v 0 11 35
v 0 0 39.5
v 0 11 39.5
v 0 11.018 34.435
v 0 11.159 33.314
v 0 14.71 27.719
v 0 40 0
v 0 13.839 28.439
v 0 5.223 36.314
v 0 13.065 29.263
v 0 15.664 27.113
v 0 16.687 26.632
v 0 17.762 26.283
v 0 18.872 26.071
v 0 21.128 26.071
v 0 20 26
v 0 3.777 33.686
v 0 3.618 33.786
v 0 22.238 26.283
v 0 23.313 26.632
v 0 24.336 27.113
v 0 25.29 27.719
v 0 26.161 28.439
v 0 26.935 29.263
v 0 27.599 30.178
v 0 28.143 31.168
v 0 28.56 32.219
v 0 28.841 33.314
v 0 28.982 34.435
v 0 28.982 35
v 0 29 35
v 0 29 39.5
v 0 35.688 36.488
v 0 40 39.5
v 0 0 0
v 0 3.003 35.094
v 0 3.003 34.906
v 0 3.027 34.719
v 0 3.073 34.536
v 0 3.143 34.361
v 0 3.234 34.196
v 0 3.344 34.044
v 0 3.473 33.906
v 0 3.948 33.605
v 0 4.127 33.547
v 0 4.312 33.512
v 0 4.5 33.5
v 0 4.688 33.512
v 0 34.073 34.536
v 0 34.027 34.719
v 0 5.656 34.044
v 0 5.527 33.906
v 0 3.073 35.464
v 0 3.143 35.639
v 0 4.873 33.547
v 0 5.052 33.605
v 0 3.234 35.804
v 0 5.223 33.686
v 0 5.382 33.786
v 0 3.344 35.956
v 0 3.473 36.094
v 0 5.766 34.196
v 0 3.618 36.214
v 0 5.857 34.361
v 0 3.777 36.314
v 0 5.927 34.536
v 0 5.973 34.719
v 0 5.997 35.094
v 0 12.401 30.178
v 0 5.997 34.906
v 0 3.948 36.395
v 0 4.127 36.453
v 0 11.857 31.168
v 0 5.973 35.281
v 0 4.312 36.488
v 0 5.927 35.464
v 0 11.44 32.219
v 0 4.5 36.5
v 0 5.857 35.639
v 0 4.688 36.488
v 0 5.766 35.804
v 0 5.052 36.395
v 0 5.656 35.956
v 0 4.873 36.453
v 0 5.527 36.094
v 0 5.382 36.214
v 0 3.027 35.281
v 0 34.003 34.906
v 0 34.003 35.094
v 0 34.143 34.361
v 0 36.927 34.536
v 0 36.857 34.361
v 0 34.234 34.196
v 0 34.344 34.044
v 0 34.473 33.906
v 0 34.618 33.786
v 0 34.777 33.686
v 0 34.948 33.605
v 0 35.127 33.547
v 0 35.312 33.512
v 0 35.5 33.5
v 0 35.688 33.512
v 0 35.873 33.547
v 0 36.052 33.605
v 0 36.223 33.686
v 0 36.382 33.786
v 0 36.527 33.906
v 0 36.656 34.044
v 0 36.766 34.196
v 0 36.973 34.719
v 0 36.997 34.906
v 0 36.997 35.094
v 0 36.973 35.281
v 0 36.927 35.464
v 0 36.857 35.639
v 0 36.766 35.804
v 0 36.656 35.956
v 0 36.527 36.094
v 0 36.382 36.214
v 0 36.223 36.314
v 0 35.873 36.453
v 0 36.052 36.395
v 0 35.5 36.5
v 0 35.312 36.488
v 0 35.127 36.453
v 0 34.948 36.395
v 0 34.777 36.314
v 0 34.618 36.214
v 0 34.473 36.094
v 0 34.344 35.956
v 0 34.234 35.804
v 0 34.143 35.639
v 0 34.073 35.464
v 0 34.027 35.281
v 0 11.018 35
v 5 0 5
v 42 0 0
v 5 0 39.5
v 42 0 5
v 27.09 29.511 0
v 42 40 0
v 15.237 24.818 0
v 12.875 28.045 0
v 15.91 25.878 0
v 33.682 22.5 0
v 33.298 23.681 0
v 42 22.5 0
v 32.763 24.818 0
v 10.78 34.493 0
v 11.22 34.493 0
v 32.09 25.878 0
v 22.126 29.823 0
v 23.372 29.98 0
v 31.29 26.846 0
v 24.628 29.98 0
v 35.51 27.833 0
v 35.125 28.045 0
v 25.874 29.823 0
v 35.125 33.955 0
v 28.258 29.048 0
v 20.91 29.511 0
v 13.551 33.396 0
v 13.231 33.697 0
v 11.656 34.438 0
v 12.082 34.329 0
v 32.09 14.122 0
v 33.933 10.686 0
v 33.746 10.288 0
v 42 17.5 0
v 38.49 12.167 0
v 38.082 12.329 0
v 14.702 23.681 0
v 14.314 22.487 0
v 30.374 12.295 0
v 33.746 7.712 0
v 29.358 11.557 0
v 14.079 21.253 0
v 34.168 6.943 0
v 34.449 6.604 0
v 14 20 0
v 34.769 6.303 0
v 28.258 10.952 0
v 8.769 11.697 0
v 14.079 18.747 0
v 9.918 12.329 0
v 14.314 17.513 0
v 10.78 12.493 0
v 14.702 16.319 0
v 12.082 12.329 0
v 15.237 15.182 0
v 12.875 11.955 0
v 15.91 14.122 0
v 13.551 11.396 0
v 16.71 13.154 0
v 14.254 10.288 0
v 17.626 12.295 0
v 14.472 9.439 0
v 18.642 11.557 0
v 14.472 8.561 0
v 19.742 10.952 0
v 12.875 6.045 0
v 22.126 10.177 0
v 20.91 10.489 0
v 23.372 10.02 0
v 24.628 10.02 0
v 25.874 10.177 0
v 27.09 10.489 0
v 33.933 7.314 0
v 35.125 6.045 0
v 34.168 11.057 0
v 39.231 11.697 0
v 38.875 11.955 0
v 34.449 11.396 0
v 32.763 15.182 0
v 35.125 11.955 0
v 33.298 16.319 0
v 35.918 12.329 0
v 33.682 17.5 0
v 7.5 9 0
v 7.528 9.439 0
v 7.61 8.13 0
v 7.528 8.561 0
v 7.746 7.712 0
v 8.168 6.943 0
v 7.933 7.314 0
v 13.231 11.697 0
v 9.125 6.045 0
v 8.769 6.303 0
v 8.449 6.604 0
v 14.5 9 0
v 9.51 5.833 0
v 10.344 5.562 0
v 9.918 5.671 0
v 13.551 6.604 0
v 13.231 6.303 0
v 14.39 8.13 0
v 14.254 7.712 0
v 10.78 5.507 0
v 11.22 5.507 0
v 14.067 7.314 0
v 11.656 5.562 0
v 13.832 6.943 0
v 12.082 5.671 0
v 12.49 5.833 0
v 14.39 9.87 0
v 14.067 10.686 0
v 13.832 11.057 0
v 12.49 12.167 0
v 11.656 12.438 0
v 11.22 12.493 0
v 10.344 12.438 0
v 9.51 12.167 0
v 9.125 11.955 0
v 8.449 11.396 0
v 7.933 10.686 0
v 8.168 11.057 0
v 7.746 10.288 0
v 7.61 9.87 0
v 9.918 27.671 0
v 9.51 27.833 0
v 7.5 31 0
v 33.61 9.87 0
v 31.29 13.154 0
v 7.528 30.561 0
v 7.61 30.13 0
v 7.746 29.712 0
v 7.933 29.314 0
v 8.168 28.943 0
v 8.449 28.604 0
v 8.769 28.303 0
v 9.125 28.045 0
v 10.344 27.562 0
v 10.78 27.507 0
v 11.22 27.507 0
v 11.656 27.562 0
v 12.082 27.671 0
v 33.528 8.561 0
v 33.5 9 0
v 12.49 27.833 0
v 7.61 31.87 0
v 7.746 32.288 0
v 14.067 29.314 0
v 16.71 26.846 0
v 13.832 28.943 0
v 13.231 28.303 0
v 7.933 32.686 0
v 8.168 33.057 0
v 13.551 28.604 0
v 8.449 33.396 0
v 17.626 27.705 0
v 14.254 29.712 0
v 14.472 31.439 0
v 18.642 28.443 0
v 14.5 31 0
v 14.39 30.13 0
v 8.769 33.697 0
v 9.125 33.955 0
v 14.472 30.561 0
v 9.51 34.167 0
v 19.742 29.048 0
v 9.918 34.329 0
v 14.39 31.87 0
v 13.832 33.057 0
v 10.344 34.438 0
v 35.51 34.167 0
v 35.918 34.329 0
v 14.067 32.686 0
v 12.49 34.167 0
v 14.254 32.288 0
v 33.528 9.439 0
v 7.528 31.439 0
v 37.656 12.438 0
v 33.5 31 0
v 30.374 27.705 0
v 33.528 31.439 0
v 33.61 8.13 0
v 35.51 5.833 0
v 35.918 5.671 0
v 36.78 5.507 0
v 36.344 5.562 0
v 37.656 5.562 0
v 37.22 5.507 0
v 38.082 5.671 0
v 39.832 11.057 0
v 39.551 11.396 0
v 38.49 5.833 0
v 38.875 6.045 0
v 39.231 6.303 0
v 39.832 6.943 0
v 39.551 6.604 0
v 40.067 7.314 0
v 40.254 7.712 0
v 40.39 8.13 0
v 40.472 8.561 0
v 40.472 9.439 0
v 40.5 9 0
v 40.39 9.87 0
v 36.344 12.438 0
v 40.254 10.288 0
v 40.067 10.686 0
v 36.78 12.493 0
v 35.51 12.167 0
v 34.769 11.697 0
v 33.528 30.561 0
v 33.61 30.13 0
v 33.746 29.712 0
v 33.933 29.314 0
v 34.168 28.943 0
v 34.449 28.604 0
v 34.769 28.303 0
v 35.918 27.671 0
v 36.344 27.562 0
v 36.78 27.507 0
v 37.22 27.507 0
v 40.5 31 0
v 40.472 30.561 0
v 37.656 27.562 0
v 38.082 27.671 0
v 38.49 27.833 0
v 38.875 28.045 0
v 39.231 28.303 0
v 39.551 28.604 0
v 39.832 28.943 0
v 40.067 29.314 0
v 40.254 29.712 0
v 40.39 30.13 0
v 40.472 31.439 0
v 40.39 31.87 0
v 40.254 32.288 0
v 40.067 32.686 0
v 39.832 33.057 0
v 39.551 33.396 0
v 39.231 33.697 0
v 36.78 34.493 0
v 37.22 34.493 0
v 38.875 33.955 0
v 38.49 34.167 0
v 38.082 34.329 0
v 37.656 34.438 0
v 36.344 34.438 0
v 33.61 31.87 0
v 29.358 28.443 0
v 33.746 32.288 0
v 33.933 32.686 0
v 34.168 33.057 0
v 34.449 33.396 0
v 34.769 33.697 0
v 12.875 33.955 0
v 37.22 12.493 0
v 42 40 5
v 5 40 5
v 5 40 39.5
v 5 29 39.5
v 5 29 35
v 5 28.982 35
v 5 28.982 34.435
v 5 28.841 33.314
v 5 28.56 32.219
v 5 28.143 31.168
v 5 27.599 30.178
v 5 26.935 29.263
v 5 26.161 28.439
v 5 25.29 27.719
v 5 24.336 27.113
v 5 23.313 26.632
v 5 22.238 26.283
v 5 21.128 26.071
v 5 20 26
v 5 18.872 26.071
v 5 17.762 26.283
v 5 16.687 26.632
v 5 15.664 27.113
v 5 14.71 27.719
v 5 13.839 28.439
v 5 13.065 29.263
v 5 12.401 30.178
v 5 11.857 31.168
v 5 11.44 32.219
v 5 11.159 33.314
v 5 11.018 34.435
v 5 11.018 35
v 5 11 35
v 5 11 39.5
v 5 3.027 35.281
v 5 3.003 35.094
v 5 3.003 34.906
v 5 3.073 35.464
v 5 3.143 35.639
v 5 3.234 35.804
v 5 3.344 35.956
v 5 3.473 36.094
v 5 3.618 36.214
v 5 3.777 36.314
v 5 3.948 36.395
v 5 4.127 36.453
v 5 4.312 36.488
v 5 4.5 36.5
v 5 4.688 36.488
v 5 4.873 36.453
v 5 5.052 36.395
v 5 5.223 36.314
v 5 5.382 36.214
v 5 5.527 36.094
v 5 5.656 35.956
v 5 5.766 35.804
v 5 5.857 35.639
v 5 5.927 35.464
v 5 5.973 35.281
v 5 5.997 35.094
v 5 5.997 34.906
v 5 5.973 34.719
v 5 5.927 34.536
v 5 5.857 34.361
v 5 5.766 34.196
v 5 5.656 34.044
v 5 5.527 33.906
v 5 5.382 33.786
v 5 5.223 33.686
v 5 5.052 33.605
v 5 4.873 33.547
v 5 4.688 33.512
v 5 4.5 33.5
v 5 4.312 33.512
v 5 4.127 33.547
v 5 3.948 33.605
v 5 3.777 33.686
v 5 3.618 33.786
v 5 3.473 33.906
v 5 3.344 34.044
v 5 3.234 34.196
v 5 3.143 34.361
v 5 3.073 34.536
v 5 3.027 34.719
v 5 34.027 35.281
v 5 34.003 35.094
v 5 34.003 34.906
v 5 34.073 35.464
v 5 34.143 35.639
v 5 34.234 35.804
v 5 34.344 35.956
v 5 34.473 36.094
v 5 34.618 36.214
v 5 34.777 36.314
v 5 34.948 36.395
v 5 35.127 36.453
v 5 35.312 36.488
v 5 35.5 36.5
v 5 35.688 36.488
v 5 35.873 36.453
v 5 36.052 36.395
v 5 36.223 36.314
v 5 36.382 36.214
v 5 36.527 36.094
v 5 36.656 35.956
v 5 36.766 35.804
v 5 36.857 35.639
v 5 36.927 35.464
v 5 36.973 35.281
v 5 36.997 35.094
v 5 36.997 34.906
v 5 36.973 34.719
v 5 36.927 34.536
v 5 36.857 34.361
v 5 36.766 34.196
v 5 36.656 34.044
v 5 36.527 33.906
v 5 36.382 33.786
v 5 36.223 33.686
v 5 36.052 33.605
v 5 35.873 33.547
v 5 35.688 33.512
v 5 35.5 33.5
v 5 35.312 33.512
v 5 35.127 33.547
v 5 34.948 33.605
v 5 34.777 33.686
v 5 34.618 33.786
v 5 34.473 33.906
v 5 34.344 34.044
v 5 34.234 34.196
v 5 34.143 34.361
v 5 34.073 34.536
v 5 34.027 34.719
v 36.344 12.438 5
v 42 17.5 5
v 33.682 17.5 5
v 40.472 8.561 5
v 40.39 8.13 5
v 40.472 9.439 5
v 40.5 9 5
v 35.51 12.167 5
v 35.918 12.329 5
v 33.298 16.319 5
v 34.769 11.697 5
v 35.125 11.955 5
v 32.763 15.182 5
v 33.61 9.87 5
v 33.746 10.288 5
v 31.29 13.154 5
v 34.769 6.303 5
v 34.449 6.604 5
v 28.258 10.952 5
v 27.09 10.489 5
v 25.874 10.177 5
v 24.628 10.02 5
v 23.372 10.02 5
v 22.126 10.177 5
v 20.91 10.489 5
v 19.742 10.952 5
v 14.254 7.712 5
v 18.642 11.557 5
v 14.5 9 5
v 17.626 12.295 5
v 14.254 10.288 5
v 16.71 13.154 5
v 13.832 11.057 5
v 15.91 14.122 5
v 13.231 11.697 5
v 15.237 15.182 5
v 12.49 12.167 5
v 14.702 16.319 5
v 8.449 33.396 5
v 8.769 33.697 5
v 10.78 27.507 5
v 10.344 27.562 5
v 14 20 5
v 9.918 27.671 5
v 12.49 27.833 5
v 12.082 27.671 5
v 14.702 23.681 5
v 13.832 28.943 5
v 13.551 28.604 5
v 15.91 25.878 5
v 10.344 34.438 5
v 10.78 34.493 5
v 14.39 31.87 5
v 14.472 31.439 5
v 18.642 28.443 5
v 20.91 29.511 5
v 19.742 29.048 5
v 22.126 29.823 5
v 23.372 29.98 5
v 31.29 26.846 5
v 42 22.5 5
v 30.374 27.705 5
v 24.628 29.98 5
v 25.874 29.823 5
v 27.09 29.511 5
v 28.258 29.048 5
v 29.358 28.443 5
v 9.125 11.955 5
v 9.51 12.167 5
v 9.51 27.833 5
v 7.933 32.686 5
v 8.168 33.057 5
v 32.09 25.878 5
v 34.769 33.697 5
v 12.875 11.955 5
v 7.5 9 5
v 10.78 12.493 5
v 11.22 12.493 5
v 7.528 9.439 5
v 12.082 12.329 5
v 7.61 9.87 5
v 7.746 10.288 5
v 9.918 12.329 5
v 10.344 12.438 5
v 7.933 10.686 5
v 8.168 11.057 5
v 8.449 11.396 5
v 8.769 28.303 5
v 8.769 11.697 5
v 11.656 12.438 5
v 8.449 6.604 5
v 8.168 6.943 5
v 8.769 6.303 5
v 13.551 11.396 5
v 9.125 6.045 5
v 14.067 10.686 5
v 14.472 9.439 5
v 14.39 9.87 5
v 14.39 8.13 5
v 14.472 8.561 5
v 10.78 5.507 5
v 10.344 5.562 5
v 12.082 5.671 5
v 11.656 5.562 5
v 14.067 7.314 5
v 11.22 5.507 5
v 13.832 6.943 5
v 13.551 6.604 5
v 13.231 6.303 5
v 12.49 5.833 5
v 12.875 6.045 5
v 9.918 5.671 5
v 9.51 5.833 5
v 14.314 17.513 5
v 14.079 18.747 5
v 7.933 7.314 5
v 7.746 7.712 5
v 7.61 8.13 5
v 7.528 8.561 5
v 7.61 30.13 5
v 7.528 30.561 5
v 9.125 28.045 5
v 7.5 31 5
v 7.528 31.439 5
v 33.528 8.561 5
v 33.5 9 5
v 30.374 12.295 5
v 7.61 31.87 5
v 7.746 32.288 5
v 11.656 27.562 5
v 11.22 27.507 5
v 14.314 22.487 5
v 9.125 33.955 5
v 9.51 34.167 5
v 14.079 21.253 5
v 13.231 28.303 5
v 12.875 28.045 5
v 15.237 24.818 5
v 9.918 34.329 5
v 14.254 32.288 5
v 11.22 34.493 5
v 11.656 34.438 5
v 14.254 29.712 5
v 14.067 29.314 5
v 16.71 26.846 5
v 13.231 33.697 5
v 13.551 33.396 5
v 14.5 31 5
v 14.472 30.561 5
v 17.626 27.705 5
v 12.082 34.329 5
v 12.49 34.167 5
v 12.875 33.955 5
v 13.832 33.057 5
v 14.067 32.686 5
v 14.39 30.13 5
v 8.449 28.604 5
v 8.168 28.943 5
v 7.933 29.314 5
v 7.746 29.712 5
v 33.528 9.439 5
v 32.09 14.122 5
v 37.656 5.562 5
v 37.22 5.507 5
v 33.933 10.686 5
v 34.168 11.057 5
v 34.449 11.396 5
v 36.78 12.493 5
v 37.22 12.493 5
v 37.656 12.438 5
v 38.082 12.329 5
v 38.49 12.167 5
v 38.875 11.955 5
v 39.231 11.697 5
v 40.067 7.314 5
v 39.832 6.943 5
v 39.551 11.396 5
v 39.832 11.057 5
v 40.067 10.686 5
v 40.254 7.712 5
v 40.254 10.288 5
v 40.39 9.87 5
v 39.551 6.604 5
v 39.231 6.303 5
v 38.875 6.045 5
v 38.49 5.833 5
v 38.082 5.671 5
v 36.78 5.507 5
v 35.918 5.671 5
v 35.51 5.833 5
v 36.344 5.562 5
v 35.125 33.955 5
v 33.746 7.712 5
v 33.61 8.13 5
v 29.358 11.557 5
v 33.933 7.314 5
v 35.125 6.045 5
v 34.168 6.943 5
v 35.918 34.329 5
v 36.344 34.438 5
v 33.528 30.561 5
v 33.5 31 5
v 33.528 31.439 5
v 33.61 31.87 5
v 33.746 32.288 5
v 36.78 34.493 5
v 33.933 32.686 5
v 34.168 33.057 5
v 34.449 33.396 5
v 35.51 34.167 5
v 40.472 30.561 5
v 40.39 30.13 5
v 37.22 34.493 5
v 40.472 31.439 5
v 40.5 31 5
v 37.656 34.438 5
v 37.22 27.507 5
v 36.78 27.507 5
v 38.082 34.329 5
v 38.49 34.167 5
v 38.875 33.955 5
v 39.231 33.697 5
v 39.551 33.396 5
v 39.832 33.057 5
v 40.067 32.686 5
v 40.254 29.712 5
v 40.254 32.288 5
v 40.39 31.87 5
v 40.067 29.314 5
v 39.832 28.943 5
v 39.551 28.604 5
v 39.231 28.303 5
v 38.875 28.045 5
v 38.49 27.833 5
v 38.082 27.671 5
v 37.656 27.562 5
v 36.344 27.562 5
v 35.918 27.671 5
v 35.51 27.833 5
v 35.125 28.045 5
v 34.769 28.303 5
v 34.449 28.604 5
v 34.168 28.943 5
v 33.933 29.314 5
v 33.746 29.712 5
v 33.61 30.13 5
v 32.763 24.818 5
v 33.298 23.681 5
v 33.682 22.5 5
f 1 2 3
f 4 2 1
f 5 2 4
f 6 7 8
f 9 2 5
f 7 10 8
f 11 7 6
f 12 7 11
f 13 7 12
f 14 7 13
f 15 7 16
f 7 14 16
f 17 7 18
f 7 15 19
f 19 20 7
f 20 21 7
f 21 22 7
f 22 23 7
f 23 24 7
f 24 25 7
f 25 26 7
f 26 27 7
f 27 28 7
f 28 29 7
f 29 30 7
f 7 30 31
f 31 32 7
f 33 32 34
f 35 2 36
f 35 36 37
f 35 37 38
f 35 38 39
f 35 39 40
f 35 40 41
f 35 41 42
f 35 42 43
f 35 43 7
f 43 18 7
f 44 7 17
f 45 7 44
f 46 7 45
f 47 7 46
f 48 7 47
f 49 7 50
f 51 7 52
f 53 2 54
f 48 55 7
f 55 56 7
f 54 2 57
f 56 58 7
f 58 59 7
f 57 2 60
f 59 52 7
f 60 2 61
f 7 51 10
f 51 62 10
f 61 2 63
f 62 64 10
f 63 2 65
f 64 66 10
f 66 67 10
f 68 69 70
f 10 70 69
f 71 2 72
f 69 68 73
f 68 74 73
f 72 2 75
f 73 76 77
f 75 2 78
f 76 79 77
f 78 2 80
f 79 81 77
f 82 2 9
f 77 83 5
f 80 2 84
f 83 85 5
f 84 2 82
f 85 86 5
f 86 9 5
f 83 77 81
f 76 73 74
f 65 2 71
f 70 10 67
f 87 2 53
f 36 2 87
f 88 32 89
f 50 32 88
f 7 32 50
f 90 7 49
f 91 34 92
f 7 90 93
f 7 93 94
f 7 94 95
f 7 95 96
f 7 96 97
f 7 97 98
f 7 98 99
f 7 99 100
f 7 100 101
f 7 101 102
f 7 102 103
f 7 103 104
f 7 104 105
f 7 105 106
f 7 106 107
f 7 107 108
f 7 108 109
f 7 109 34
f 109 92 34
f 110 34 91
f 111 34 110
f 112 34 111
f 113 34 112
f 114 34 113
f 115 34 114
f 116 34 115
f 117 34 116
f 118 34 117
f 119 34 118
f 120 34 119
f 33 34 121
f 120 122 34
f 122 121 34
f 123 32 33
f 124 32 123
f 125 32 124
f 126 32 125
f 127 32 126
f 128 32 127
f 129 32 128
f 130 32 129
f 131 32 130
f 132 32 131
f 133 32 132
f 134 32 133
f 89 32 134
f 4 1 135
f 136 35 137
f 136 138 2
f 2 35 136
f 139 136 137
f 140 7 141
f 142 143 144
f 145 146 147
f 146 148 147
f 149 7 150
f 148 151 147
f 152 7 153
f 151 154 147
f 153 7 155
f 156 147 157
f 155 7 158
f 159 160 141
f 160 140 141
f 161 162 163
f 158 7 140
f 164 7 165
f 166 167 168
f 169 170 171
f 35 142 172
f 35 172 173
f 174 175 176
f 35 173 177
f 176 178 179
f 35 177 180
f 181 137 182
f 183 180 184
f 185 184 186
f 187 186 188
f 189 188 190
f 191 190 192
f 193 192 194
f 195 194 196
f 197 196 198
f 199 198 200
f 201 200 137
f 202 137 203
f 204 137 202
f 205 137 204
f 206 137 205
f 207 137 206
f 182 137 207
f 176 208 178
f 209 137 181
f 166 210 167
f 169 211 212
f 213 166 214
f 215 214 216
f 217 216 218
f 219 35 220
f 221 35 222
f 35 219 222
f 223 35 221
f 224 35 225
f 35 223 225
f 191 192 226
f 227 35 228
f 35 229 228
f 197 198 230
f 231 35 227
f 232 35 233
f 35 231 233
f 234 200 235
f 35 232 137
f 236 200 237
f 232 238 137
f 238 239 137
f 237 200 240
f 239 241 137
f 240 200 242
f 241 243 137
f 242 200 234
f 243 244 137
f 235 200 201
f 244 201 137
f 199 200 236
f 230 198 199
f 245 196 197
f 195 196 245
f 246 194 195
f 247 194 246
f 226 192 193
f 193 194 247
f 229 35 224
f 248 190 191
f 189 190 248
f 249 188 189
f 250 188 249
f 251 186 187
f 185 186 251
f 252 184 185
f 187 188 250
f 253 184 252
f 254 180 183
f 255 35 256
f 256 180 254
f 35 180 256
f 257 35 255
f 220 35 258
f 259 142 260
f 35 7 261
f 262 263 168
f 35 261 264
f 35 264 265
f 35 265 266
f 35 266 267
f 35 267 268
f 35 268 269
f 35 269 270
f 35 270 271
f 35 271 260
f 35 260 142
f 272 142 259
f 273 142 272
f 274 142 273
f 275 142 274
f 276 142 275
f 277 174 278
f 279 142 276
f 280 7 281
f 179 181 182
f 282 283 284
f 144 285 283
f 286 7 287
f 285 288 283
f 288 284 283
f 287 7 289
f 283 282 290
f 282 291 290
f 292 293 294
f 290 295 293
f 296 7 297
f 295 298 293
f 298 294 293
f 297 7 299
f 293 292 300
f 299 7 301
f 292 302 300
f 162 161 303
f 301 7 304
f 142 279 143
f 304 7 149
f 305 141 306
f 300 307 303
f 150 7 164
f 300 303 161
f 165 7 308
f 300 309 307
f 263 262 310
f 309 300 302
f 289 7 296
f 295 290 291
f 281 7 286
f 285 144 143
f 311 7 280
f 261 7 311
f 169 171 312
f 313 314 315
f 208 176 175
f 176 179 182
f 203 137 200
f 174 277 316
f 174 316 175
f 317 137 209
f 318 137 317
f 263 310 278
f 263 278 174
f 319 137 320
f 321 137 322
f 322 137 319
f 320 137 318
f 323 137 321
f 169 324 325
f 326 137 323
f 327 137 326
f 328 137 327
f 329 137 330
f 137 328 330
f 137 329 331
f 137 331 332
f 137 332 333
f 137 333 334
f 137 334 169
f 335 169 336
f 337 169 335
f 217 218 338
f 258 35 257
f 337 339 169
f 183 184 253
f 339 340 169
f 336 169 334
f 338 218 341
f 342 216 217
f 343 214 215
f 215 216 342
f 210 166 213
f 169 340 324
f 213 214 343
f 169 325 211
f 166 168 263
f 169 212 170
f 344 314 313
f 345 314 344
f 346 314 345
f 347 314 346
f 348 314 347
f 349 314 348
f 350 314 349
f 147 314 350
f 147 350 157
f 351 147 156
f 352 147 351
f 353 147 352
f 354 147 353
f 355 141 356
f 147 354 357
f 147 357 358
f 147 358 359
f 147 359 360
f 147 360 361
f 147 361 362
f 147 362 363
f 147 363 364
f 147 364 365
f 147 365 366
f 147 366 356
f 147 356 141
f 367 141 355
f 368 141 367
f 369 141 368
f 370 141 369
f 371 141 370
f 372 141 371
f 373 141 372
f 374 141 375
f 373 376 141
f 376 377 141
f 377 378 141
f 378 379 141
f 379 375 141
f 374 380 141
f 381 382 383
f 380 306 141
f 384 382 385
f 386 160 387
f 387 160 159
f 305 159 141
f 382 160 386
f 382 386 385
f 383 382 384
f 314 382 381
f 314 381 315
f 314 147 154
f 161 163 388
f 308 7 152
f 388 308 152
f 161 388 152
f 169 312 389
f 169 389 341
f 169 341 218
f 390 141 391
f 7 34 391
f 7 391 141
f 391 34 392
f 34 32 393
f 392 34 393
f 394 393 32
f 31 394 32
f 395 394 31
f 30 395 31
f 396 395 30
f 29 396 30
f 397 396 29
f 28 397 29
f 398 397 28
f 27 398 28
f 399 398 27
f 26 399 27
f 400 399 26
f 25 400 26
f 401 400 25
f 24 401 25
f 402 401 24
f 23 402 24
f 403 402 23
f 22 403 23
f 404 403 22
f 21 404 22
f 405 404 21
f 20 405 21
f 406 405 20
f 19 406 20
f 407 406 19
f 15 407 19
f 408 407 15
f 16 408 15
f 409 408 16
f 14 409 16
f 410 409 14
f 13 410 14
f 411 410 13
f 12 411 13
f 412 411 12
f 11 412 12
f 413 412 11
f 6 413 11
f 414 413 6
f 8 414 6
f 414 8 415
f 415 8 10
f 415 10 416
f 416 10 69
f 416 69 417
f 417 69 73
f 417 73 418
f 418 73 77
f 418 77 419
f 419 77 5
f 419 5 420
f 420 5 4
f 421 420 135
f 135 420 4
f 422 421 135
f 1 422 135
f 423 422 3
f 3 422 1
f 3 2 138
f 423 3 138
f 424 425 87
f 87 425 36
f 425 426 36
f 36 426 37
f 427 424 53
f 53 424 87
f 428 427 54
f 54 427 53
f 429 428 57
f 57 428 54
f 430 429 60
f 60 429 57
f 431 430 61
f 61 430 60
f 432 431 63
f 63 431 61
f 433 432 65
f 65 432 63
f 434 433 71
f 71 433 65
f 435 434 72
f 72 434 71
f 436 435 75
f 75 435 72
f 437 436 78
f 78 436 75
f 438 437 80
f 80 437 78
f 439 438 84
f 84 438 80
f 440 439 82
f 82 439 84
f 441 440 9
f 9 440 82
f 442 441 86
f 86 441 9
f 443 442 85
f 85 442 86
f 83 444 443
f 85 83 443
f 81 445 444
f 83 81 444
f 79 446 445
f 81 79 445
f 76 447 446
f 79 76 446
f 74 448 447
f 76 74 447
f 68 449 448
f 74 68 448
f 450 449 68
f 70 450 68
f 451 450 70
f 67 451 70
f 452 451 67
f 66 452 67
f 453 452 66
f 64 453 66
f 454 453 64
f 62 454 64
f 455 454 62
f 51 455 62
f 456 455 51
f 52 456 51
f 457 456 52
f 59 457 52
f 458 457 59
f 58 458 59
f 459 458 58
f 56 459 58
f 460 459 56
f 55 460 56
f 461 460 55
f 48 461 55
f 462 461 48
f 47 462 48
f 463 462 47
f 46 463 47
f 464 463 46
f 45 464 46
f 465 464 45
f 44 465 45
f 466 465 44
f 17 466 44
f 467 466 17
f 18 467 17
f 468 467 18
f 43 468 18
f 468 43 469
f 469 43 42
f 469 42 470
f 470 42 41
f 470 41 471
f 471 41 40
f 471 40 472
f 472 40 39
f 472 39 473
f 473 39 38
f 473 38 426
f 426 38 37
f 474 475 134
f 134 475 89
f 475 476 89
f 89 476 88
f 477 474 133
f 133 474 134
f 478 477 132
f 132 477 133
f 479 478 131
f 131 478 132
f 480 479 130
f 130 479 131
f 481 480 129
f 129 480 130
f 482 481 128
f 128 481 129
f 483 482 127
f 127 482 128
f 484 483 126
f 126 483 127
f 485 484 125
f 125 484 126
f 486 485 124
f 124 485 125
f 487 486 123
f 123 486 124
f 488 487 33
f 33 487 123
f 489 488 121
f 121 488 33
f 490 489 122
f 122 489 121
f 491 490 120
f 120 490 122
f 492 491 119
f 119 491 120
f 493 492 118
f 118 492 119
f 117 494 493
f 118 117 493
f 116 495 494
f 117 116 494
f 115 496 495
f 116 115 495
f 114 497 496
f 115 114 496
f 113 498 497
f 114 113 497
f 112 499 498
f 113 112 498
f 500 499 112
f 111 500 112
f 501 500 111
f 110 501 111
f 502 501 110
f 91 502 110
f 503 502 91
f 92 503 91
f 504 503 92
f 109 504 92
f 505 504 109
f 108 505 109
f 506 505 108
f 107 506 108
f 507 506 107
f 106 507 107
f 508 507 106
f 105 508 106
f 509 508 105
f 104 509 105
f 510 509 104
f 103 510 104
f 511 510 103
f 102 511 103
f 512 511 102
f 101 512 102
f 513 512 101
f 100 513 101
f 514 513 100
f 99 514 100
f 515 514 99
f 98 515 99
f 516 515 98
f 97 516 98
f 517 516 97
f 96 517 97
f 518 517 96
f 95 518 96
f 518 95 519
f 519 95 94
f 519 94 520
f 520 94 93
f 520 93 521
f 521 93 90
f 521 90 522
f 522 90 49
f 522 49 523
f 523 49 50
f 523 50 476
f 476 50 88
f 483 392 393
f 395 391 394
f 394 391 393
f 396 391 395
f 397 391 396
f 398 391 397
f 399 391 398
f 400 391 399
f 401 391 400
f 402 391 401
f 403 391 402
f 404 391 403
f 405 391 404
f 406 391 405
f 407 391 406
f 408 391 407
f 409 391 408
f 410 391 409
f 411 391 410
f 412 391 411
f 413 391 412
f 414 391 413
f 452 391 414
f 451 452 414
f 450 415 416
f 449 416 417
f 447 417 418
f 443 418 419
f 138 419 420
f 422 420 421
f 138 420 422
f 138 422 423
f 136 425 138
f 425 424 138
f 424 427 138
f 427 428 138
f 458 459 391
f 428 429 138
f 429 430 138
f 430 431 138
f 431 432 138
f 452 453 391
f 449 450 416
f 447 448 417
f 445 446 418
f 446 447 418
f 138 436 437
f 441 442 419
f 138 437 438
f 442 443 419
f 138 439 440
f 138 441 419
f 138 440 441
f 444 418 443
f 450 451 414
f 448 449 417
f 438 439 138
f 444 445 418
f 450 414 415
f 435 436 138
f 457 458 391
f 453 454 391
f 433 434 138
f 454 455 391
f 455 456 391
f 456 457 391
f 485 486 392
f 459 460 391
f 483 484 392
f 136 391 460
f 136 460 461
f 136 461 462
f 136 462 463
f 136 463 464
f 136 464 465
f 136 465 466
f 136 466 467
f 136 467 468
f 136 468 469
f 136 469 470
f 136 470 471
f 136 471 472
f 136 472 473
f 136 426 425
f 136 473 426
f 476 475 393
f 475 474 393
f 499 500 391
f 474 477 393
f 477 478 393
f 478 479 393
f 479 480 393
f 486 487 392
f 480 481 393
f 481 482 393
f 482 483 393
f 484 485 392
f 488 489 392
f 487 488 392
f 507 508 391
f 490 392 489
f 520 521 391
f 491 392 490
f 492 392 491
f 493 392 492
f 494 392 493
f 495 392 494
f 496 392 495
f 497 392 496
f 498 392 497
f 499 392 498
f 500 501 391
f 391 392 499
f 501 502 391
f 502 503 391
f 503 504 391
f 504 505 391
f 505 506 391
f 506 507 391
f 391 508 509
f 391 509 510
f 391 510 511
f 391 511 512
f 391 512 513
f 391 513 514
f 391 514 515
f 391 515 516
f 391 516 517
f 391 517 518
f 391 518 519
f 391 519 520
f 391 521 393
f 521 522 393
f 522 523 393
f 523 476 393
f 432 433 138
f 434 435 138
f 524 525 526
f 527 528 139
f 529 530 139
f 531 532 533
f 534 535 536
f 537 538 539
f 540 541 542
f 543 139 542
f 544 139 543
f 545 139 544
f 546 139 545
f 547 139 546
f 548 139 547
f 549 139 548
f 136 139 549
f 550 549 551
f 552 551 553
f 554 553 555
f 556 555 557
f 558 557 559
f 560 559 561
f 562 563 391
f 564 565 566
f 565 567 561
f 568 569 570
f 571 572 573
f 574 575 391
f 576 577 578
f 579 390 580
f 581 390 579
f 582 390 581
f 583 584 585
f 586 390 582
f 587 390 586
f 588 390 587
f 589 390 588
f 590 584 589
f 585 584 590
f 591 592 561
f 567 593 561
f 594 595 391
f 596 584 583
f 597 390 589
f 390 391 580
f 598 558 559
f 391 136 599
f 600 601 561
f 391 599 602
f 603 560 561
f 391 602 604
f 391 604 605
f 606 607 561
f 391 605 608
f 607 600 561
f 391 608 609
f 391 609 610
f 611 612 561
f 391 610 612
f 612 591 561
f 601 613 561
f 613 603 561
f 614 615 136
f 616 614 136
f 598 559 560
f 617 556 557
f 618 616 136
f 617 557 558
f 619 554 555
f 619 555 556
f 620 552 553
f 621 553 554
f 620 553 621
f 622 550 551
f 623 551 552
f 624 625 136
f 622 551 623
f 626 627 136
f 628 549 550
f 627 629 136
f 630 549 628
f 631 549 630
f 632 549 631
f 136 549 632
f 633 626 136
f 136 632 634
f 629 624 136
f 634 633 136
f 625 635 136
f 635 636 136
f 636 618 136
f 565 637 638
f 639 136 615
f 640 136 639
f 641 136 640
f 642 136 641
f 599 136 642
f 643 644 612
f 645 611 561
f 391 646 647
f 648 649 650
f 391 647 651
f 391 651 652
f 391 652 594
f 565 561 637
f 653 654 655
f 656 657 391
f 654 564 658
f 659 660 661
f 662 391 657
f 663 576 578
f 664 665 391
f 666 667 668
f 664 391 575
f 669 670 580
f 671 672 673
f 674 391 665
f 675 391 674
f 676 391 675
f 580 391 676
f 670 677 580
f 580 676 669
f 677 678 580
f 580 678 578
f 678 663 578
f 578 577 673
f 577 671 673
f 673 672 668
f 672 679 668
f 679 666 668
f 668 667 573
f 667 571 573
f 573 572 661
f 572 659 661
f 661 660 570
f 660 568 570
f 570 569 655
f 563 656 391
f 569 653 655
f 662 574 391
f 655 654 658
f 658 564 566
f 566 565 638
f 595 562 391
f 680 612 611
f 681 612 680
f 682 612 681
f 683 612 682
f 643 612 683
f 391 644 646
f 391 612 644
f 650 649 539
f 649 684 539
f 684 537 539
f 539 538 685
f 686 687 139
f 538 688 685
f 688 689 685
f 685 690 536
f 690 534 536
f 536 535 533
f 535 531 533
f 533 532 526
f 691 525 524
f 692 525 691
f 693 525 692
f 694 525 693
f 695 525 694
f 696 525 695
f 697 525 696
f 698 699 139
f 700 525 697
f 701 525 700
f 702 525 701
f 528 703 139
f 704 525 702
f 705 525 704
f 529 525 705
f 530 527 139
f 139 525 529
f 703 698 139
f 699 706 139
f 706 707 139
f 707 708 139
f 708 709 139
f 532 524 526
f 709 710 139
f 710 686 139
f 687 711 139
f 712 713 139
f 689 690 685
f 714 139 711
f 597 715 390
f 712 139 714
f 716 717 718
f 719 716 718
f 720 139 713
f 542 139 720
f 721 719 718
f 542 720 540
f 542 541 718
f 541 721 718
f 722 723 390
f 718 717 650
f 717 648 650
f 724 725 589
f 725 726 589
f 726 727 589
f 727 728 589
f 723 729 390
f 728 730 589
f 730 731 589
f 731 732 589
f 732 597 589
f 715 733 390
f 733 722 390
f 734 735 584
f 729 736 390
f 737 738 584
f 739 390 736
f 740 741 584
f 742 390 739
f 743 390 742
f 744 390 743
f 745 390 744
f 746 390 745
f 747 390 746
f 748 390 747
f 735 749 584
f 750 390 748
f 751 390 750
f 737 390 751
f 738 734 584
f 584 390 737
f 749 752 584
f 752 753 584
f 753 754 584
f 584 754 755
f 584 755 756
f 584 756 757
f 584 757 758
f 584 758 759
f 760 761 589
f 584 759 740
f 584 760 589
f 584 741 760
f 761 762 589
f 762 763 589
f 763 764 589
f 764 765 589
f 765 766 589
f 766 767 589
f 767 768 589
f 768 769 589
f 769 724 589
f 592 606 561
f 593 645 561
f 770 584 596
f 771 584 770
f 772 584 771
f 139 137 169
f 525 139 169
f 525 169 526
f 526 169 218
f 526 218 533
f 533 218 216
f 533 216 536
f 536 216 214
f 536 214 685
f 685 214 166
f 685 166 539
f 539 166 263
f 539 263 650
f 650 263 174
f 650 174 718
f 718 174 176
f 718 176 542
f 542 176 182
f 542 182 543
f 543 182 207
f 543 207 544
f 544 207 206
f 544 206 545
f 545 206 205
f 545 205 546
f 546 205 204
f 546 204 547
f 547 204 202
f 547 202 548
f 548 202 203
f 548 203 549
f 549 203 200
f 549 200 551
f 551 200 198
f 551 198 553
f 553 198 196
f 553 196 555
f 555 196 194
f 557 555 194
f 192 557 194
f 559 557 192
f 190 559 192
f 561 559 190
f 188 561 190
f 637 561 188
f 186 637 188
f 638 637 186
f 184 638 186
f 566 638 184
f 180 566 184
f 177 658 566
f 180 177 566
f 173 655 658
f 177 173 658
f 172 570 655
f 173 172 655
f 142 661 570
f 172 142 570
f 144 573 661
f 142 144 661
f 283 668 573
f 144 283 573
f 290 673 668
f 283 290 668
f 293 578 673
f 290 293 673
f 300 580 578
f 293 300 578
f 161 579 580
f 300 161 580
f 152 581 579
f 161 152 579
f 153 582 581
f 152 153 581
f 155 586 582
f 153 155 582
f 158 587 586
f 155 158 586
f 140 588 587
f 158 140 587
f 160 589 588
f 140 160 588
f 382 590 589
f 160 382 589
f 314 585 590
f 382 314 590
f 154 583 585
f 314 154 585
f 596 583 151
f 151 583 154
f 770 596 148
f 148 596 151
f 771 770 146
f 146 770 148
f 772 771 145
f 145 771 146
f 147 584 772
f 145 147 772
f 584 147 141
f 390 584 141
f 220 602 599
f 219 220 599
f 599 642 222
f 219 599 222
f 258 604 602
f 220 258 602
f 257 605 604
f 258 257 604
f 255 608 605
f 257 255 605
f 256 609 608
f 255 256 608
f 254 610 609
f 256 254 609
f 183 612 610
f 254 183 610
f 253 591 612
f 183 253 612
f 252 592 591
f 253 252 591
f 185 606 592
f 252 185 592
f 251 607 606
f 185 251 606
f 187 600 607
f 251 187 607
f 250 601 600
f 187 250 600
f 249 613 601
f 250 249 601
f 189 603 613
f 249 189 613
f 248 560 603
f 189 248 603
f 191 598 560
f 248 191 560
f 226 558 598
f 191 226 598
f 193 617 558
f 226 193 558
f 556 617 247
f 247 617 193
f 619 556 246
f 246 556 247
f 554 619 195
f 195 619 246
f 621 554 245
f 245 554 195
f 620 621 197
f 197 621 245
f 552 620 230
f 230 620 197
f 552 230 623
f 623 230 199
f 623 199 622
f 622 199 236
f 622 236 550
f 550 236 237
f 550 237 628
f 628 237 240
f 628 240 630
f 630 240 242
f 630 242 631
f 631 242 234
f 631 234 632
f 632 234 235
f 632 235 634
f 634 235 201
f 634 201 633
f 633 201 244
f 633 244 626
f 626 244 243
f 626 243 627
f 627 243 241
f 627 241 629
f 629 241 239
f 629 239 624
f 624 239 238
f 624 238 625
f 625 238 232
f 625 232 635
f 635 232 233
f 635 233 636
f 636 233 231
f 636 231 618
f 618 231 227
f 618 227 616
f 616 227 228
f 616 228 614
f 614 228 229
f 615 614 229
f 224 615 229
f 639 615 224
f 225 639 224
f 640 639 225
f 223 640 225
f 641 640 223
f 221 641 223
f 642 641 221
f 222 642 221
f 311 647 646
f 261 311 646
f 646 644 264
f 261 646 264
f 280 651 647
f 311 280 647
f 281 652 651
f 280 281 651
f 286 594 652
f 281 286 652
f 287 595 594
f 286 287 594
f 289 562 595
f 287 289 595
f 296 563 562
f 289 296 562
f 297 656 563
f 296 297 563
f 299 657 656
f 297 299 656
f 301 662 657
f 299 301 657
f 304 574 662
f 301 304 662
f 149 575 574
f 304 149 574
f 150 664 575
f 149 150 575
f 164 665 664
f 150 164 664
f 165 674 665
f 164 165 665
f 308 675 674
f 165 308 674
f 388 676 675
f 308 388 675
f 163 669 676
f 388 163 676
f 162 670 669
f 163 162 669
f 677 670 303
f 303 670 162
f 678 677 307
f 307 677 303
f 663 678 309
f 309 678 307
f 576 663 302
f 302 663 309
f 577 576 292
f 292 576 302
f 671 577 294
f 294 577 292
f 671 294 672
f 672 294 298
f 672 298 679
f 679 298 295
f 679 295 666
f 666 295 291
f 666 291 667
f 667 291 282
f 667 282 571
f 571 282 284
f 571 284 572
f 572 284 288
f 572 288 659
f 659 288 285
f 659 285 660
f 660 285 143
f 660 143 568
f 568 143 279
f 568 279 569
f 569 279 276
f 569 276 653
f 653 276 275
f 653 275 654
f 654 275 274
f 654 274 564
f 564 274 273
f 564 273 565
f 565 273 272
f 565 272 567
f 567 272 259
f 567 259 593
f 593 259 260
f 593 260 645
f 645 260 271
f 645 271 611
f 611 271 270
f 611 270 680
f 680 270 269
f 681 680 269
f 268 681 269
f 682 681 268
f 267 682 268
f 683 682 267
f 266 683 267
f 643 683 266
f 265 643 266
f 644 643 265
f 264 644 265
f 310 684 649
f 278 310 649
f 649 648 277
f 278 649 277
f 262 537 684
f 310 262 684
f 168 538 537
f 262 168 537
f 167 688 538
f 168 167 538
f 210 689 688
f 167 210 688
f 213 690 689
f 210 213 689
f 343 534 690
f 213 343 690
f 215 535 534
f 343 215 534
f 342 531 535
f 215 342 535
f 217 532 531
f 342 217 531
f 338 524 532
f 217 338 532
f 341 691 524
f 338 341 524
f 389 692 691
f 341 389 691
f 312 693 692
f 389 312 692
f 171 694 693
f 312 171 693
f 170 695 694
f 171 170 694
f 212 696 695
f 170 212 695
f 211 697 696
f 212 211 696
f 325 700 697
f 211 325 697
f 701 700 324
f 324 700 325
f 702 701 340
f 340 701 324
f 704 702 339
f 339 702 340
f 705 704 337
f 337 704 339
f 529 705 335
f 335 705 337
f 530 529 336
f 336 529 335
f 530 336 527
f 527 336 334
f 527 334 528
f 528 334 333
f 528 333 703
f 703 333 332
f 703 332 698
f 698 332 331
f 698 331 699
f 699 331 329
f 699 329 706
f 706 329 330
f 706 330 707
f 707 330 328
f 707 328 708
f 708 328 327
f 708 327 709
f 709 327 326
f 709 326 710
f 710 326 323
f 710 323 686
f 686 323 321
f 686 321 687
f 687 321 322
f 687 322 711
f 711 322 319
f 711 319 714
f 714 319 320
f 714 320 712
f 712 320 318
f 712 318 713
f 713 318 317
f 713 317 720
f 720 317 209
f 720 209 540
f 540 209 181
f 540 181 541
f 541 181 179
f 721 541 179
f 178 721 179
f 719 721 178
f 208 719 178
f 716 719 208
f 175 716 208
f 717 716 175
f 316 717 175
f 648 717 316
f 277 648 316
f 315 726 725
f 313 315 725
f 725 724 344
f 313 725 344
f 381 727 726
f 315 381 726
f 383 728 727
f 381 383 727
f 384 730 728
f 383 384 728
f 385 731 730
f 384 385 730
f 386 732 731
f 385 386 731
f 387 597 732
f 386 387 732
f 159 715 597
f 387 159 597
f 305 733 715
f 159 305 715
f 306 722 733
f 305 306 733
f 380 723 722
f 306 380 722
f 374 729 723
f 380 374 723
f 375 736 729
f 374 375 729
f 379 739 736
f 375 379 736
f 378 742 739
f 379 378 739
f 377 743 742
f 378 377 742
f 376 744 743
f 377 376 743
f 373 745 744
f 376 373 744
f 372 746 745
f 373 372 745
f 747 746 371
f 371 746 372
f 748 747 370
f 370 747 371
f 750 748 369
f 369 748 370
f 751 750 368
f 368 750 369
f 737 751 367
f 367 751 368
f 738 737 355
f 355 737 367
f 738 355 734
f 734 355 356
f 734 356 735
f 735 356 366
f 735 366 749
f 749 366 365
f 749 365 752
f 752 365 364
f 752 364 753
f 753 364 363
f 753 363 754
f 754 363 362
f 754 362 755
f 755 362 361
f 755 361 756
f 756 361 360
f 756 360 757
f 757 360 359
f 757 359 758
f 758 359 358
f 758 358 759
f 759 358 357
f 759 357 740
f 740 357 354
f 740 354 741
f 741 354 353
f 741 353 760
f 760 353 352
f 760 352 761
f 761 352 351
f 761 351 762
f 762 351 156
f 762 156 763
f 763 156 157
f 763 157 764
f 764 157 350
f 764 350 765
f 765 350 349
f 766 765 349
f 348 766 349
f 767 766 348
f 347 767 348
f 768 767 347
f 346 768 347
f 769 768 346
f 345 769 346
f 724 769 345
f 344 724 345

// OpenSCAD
h = 39.5;
b = 40;
l = 42;
d = 5;

rw = 9;
hw = 35;
rl1 = 1.5;
dl1 = 31;

$fn = 50;

rl2 = 7/2;
blk2 = 22;
llk2 = 26;
rmllk2 = 10;
bplk2 = 20;
lplk2 = 24;

difference(){
	cube([l,b,h]);
	translate([d,-1,d]) cube([l,b+2,h]);
	translate([-1,b/2,hw]) rotate([0,90,0])cylinder(r=rw,h=d+2);
	translate([-1,b/2-rw,hw]) #cube([d+2,rw*2,h-hw+1]);
	translate([-1,b/2+dl1/2,hw]) rotate([0,90,0])cylinder(r=rl1,h=d+2);
	translate([-1,b/2-dl1/2,hw]) rotate([0,90,0])cylinder(r=rl1,h=d+2);

	translate([lplk2+llk2/2,bplk2+blk2/2,-1]) #cylinder(r=rl2,h=d+2);
	translate([lplk2-llk2/2,bplk2+blk2/2,-1]) cylinder(r=rl2,h=d+2);
	translate([lplk2+llk2/2,bplk2-blk2/2,-1]) cylinder(r=rl2,h=d+2);
	translate([lplk2-llk2/2,bplk2-blk2/2,-1]) cylinder(r=rl2,h=d+2);
	translate([lplk2,bplk2,-1]) cylinder(r=rmllk2,h=d+2);

	translate([l/2,b/2-2.5,-1]) cube([l/2+1,5,d+2]);

}
